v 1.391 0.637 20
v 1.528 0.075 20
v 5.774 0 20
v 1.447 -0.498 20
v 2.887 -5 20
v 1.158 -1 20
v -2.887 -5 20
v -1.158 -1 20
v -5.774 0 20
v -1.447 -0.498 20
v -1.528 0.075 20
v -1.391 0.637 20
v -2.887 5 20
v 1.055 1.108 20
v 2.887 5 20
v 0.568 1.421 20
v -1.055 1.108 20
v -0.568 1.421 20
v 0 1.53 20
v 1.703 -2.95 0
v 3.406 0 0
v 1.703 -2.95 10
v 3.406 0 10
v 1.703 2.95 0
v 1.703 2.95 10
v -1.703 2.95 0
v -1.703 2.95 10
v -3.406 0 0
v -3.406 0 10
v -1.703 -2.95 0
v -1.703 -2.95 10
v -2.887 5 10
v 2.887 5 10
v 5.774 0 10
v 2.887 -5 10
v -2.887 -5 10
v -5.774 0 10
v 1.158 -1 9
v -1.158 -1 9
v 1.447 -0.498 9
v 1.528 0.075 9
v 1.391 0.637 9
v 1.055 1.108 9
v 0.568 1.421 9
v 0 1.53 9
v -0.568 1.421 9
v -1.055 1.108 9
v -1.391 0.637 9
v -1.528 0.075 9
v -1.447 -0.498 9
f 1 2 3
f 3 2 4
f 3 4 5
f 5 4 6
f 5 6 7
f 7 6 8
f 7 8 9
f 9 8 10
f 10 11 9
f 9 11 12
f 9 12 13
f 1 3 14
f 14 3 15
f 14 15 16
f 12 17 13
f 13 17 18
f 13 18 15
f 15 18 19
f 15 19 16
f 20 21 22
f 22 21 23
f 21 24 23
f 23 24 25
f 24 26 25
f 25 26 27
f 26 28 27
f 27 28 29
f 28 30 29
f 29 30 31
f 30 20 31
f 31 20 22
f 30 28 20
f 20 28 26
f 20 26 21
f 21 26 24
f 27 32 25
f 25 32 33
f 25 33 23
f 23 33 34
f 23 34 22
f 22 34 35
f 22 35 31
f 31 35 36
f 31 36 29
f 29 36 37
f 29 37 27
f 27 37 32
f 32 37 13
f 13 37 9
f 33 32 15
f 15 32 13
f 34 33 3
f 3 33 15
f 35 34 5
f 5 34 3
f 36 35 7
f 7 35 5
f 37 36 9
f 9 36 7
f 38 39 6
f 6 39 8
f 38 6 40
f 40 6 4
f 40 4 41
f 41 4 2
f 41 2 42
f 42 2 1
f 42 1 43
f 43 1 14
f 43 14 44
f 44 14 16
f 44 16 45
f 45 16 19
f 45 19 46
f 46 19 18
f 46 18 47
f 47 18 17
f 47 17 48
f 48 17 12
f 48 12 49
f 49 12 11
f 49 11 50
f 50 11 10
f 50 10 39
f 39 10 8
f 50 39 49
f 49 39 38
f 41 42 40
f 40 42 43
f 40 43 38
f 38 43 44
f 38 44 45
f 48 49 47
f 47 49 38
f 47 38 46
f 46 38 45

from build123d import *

# Parameters (mm, degrees)
BOSS_EXTRUDE1_DEPTH = 20
BOSS_EXTRUDE2_DEPTH = 10
CUT_EXTRUDE1_DEPTH  = 11


with BuildPart() as part:
    # Sketch1 → Boss-Extrude1 (new body)
    with BuildSketch(Plane.XY):
        Polygon((3.406366588, 0), (1.703183294, 2.95), (-1.703183294, 2.95), (-3.406366588, 0), (-1.703183294, -2.95), (1.703183294, -2.95), align=None)
    extrude(amount=BOSS_EXTRUDE1_DEPTH)

    # Sketch2 → Boss-Extrude2 (add)
    with BuildSketch(Plane.XY.offset(20)):
        Polygon((-5.773502692, 0), (-2.886751346, -5), (2.886751346, -5), (5.773502692, 0), (2.886751346, 5), (-2.886751346, 5), align=None)
    extrude(amount=-BOSS_EXTRUDE2_DEPTH)

    # Sketch4 → Cut-Extrude1 (cut)
    with BuildSketch(Plane.XY.offset(20)):
        with BuildLine():
            Line((-1.157972366, -1), (1.157972366, -1))
            ThreePointArc((1.157972366, -1), (0, 1.53), (-1.157972366, -1))
        make_face()
    extrude(amount=-CUT_EXTRUDE1_DEPTH, mode=Mode.SUBTRACT)


solid = part.part
